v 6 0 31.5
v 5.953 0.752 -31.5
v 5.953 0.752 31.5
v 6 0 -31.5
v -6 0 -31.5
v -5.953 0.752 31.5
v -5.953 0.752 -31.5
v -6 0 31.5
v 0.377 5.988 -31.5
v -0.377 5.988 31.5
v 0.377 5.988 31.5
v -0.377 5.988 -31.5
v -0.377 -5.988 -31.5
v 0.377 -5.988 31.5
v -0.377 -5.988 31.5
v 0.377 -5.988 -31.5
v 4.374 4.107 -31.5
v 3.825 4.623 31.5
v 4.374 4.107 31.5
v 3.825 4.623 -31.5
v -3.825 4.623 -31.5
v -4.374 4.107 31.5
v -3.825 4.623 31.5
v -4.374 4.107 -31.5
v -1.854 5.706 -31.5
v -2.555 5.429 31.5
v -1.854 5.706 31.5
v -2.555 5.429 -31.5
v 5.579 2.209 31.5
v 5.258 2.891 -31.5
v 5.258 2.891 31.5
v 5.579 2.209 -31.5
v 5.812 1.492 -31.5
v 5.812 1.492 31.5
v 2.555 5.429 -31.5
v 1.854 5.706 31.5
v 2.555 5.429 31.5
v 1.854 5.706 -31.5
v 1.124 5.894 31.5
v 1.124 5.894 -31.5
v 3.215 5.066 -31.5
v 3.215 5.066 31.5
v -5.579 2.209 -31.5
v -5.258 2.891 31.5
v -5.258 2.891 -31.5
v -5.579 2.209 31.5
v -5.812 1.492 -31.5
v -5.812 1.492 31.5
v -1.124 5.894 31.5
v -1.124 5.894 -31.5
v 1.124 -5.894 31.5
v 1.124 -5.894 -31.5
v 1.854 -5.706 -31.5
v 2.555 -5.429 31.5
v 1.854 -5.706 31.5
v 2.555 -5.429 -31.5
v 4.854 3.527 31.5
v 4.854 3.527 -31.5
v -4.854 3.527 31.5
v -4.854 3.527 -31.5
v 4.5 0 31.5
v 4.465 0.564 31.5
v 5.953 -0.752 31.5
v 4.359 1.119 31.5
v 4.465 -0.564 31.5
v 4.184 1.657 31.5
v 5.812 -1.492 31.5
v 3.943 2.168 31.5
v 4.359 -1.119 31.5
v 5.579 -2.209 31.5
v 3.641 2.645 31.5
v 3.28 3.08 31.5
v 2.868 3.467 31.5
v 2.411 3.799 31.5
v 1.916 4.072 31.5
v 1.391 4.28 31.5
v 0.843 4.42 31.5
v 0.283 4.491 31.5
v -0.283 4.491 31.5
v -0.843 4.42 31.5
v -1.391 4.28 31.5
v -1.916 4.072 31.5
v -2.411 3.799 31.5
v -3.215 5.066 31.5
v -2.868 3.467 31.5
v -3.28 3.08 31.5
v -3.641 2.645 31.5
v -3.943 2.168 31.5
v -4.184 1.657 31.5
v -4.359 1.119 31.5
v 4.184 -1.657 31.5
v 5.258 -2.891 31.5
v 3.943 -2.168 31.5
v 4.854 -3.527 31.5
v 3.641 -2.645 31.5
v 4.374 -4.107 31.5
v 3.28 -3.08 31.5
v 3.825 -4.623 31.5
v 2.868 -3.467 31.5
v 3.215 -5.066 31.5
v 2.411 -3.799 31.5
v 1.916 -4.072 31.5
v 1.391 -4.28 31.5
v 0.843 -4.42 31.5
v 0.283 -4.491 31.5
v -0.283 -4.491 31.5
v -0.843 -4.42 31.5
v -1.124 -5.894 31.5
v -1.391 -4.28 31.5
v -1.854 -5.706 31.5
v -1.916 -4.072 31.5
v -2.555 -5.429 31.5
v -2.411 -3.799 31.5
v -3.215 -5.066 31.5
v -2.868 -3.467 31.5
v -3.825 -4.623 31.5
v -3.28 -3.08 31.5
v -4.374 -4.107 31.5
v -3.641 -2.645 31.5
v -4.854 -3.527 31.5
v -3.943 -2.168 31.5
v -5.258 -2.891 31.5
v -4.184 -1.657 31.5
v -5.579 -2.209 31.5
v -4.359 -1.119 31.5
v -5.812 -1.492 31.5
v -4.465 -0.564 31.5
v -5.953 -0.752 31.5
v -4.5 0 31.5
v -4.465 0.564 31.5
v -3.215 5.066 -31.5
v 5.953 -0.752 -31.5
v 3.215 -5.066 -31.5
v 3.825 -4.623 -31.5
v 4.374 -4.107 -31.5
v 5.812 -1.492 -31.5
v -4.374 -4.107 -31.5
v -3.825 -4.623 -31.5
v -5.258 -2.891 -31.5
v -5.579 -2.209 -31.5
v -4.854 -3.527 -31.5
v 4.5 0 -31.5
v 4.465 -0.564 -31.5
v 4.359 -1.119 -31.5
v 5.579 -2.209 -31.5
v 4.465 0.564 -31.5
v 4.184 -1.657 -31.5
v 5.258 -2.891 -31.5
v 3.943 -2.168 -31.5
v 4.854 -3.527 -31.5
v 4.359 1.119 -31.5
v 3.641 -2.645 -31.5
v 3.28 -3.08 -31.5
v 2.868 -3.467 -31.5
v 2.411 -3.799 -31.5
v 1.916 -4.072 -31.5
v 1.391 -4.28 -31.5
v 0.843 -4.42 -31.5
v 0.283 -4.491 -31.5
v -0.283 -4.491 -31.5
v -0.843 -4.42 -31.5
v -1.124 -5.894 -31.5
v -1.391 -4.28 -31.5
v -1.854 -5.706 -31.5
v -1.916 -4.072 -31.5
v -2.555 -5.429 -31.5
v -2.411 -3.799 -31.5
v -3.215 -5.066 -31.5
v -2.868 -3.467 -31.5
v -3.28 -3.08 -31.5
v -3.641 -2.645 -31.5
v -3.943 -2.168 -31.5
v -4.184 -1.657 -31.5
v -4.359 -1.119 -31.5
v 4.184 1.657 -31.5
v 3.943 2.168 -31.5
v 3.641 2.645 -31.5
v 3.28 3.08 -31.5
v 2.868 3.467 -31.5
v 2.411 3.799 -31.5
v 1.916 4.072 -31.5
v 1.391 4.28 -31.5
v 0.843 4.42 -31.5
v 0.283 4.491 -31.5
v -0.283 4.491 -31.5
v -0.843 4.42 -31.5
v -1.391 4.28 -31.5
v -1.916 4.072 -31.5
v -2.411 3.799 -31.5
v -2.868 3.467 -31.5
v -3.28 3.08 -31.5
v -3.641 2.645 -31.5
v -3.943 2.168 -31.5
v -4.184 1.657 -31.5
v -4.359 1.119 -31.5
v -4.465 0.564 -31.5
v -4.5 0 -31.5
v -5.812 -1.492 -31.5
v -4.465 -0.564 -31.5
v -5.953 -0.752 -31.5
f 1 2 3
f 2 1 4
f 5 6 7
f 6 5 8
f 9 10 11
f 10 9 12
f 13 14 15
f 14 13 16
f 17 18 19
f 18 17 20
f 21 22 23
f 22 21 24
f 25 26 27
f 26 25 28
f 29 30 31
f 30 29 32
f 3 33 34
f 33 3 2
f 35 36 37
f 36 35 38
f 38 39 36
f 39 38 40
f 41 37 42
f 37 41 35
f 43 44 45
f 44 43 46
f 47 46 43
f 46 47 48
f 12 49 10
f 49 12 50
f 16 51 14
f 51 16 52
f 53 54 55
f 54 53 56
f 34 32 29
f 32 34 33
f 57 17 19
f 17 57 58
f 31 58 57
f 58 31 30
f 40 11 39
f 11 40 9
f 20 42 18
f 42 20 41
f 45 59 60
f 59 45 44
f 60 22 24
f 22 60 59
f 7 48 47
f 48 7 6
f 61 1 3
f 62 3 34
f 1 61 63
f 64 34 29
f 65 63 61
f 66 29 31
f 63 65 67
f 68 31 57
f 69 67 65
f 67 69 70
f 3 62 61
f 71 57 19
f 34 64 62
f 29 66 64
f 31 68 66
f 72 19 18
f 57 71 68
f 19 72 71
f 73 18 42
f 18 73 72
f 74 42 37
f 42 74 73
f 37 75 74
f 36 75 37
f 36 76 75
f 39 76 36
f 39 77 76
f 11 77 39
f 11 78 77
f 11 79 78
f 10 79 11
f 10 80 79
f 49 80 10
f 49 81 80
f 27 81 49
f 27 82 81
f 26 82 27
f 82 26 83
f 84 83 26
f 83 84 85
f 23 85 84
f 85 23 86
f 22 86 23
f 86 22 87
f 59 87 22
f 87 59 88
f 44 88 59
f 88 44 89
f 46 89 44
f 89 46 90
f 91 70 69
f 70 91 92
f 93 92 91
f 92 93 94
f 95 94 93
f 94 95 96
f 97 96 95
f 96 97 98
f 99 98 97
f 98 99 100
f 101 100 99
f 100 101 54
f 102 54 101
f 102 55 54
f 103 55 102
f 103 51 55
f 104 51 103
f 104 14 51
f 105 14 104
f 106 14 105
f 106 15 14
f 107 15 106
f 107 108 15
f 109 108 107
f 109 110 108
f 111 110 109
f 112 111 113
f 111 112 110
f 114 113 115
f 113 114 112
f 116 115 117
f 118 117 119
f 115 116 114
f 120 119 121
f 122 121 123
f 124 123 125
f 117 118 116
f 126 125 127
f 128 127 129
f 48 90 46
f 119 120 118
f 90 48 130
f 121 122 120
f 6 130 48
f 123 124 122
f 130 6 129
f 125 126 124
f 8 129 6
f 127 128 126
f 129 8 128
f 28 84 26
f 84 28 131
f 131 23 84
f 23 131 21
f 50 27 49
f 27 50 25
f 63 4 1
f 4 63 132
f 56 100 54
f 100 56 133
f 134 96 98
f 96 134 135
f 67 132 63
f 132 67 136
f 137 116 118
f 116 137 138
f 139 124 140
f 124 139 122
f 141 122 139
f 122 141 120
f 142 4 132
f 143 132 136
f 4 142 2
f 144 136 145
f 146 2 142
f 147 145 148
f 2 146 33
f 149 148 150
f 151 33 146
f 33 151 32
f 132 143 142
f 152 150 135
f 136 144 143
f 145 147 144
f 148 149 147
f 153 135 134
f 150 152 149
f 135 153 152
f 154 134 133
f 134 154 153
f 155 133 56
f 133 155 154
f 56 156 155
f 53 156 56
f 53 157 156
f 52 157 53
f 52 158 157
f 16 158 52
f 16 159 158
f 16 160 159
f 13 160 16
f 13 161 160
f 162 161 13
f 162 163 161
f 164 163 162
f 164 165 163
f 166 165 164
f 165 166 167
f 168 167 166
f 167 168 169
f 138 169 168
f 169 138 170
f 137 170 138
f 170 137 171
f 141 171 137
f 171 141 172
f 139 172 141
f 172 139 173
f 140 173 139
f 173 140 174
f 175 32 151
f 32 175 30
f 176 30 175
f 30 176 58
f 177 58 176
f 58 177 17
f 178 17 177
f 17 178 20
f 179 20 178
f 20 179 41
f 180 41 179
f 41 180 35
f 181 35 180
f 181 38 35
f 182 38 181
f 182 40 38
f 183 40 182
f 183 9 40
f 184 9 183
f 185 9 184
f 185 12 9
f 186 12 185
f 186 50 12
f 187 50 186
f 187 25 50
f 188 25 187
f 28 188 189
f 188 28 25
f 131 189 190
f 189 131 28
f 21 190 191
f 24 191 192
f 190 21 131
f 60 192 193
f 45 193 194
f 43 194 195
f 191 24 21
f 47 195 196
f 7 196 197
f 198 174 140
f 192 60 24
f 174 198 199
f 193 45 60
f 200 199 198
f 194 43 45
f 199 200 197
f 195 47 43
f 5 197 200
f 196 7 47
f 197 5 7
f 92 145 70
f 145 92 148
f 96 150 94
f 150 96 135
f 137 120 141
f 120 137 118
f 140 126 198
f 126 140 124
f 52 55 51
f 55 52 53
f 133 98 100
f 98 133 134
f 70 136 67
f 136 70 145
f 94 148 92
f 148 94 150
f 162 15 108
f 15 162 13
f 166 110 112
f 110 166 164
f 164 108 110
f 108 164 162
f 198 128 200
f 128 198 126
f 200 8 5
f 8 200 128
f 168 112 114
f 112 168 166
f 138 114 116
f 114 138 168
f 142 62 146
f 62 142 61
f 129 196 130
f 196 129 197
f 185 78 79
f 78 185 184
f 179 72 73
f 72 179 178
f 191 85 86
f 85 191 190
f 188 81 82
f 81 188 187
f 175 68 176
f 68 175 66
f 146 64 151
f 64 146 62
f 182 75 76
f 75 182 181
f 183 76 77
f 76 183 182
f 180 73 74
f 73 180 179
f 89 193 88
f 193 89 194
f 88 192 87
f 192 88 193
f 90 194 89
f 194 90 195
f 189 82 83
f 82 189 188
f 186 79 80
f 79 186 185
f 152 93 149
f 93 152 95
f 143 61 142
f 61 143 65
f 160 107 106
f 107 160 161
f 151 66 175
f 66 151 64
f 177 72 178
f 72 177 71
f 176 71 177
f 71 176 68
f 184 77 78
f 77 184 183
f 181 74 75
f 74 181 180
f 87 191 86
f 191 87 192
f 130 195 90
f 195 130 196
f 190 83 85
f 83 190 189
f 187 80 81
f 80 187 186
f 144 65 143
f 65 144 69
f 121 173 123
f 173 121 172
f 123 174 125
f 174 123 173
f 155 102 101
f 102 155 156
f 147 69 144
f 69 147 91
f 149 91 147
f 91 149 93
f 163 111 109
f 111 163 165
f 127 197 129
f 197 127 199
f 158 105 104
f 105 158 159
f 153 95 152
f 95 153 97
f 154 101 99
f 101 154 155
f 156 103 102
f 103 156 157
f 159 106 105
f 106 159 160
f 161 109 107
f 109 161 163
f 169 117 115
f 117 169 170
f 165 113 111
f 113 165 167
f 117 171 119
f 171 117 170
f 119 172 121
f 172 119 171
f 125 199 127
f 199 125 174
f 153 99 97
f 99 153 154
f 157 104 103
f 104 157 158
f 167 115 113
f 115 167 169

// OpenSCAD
$fn = 50;


difference() {
	union() {
		translate(v = [0, 0, -31.5000000000]) {
			cylinder(h = 63, r = 6.0000000000);
		}
	}
	union() {
		translate(v = [0, 0, -100.0000000000]) {
			cylinder(h = 200, r = 4.5000000000);
		}
	}
}
